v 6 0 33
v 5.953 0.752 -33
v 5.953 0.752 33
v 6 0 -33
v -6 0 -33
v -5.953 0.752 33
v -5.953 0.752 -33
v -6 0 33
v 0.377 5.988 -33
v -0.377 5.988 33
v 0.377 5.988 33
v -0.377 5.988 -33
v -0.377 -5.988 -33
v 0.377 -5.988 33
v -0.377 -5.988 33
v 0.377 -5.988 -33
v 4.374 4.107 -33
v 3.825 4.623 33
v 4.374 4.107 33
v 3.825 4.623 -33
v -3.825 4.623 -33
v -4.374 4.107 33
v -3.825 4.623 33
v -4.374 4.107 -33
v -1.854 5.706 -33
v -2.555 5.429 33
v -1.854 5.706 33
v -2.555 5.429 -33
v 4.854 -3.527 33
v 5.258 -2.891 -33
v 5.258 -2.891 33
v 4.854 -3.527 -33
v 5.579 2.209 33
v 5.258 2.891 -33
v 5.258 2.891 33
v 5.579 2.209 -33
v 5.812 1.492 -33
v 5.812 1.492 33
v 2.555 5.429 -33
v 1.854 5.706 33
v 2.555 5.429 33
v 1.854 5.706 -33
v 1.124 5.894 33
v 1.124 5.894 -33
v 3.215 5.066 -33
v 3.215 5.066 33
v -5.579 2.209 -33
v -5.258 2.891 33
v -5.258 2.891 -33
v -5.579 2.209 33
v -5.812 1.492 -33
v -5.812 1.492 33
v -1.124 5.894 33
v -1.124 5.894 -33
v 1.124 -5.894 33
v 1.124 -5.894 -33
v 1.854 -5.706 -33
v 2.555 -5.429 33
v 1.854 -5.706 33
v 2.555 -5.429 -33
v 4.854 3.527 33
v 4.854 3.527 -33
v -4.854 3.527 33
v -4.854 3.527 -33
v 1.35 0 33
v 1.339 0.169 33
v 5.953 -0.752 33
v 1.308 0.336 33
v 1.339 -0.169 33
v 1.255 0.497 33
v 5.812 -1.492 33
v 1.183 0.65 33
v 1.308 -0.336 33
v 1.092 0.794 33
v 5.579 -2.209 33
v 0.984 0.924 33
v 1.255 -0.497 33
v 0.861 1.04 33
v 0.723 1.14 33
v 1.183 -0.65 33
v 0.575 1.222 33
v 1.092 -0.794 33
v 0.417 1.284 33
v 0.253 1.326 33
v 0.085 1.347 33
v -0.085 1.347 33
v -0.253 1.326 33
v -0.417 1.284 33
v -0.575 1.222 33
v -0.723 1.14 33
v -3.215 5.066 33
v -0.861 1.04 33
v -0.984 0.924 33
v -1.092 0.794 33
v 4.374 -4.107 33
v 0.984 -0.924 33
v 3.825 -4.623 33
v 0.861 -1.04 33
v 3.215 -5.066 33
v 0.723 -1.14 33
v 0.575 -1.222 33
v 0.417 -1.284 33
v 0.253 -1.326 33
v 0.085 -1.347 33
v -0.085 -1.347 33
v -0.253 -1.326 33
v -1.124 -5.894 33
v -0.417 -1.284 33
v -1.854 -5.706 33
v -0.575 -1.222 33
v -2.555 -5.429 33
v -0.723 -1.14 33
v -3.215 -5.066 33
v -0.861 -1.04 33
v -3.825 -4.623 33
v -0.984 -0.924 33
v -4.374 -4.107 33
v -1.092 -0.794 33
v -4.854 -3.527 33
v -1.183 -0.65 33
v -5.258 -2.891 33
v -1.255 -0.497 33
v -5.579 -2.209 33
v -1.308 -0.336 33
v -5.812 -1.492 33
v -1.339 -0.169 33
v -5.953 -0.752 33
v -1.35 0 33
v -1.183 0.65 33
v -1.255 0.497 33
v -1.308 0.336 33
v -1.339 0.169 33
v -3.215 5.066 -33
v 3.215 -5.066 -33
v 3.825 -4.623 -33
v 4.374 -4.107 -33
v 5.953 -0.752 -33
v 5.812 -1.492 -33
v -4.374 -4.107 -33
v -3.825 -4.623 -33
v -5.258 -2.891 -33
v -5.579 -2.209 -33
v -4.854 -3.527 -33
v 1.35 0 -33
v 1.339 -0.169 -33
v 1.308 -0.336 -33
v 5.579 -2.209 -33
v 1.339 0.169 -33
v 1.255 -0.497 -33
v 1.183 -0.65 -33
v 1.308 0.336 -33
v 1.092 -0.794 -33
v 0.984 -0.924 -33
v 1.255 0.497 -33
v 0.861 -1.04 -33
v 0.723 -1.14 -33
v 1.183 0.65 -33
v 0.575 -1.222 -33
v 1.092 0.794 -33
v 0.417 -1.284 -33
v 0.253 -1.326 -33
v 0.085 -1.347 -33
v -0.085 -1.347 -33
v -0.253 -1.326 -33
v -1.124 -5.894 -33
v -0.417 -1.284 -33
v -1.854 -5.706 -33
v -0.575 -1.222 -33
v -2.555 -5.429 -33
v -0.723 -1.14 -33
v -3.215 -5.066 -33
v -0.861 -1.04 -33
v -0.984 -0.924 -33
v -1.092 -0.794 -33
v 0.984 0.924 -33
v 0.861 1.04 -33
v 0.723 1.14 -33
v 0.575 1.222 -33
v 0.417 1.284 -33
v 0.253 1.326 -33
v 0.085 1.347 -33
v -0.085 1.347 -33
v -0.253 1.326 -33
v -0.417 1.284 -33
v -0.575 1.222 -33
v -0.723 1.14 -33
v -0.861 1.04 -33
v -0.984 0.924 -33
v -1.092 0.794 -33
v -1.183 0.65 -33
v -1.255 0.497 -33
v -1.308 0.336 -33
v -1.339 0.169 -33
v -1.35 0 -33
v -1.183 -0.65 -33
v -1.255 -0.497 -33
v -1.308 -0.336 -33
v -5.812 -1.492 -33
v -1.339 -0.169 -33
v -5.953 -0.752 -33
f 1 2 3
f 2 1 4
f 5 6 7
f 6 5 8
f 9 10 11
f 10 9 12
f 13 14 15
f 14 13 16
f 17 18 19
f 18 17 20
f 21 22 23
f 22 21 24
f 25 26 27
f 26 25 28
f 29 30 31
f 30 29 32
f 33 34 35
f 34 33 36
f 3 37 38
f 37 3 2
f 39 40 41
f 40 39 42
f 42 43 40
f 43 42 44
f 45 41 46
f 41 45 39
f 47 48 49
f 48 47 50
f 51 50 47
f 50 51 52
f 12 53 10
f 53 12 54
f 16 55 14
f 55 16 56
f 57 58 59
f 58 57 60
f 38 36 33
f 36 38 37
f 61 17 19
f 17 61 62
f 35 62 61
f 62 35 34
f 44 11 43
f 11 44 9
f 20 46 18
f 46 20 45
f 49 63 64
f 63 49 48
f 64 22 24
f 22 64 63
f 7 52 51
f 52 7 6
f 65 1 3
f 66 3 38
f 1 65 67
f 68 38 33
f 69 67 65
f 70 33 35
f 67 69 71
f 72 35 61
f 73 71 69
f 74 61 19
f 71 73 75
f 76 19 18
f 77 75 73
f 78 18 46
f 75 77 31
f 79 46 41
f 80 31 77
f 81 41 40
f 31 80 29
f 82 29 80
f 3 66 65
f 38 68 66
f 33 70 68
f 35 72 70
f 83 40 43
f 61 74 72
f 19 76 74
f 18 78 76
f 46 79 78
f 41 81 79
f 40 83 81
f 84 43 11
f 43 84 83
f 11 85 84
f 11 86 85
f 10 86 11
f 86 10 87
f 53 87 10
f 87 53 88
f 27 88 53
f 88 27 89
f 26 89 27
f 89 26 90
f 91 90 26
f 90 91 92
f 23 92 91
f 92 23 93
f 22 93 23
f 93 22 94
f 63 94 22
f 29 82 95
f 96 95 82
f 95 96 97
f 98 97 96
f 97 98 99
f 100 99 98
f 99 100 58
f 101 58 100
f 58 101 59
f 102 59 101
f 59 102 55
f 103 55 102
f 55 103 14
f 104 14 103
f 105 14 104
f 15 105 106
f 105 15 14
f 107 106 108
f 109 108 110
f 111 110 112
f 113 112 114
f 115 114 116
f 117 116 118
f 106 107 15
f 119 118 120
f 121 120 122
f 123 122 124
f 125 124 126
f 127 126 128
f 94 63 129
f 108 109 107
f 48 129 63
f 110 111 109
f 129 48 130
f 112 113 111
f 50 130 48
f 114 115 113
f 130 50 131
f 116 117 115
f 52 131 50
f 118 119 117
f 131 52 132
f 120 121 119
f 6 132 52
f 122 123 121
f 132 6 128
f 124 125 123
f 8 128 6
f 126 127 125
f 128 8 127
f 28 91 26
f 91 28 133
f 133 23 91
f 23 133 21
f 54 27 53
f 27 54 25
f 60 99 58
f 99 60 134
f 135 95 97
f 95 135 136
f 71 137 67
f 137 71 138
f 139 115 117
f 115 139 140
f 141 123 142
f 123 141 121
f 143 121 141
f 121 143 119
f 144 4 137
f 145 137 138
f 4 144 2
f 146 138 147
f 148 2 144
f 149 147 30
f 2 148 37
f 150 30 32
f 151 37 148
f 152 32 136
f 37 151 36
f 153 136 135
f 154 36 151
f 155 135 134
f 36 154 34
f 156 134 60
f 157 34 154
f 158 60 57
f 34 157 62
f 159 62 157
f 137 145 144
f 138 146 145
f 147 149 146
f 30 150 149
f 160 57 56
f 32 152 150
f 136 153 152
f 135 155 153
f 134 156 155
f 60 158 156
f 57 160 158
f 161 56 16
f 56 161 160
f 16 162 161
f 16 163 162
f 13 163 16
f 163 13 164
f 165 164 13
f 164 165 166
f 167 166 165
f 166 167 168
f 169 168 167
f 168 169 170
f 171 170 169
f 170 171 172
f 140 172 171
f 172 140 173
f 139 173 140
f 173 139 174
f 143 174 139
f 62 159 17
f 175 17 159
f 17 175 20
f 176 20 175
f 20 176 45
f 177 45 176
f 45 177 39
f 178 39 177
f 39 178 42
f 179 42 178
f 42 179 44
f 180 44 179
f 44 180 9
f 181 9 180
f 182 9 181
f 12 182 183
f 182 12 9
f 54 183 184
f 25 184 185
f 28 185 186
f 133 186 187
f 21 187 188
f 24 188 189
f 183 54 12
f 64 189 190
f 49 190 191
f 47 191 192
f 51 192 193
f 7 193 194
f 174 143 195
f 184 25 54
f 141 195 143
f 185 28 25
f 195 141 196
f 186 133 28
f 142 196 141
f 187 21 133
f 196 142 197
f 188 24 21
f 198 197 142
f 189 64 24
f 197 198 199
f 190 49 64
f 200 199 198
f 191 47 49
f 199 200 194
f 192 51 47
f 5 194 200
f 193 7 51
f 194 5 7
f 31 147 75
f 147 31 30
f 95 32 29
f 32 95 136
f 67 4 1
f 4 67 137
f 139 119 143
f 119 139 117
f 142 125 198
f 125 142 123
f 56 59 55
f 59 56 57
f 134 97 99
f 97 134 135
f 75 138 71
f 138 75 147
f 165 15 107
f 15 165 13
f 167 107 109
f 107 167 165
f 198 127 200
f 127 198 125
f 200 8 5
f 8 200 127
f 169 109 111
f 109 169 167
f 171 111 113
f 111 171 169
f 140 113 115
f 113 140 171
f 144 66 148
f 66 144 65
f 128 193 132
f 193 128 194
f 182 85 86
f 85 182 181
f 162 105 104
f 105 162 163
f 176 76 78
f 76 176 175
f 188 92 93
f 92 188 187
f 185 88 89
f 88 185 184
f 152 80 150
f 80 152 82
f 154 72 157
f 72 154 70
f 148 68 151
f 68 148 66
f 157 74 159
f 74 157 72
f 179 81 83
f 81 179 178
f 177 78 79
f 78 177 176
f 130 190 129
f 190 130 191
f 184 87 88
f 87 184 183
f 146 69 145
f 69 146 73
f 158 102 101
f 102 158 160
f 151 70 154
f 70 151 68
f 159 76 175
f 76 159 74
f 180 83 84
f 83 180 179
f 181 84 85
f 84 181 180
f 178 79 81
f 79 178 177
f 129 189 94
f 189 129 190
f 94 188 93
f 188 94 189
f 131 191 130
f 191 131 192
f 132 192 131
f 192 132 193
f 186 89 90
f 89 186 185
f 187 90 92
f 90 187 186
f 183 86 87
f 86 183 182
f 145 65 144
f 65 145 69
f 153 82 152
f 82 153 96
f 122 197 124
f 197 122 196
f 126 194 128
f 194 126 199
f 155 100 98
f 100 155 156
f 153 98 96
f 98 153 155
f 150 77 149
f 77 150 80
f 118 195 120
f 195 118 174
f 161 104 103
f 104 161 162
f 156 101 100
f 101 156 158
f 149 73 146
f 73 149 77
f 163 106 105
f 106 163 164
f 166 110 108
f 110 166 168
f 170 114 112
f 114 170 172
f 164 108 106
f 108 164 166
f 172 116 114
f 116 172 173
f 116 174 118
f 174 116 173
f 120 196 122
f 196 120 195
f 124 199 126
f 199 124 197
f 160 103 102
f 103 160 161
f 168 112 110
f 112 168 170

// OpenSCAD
$fn = 50;


difference() {
	union() {
		translate(v = [0, 0, -33.0000000000]) {
			cylinder(h = 66, r = 6.0000000000);
		}
	}
	union() {
		translate(v = [0, 0, -100.0000000000]) {
			cylinder(h = 200, r = 1.3500000000);
		}
	}
}
